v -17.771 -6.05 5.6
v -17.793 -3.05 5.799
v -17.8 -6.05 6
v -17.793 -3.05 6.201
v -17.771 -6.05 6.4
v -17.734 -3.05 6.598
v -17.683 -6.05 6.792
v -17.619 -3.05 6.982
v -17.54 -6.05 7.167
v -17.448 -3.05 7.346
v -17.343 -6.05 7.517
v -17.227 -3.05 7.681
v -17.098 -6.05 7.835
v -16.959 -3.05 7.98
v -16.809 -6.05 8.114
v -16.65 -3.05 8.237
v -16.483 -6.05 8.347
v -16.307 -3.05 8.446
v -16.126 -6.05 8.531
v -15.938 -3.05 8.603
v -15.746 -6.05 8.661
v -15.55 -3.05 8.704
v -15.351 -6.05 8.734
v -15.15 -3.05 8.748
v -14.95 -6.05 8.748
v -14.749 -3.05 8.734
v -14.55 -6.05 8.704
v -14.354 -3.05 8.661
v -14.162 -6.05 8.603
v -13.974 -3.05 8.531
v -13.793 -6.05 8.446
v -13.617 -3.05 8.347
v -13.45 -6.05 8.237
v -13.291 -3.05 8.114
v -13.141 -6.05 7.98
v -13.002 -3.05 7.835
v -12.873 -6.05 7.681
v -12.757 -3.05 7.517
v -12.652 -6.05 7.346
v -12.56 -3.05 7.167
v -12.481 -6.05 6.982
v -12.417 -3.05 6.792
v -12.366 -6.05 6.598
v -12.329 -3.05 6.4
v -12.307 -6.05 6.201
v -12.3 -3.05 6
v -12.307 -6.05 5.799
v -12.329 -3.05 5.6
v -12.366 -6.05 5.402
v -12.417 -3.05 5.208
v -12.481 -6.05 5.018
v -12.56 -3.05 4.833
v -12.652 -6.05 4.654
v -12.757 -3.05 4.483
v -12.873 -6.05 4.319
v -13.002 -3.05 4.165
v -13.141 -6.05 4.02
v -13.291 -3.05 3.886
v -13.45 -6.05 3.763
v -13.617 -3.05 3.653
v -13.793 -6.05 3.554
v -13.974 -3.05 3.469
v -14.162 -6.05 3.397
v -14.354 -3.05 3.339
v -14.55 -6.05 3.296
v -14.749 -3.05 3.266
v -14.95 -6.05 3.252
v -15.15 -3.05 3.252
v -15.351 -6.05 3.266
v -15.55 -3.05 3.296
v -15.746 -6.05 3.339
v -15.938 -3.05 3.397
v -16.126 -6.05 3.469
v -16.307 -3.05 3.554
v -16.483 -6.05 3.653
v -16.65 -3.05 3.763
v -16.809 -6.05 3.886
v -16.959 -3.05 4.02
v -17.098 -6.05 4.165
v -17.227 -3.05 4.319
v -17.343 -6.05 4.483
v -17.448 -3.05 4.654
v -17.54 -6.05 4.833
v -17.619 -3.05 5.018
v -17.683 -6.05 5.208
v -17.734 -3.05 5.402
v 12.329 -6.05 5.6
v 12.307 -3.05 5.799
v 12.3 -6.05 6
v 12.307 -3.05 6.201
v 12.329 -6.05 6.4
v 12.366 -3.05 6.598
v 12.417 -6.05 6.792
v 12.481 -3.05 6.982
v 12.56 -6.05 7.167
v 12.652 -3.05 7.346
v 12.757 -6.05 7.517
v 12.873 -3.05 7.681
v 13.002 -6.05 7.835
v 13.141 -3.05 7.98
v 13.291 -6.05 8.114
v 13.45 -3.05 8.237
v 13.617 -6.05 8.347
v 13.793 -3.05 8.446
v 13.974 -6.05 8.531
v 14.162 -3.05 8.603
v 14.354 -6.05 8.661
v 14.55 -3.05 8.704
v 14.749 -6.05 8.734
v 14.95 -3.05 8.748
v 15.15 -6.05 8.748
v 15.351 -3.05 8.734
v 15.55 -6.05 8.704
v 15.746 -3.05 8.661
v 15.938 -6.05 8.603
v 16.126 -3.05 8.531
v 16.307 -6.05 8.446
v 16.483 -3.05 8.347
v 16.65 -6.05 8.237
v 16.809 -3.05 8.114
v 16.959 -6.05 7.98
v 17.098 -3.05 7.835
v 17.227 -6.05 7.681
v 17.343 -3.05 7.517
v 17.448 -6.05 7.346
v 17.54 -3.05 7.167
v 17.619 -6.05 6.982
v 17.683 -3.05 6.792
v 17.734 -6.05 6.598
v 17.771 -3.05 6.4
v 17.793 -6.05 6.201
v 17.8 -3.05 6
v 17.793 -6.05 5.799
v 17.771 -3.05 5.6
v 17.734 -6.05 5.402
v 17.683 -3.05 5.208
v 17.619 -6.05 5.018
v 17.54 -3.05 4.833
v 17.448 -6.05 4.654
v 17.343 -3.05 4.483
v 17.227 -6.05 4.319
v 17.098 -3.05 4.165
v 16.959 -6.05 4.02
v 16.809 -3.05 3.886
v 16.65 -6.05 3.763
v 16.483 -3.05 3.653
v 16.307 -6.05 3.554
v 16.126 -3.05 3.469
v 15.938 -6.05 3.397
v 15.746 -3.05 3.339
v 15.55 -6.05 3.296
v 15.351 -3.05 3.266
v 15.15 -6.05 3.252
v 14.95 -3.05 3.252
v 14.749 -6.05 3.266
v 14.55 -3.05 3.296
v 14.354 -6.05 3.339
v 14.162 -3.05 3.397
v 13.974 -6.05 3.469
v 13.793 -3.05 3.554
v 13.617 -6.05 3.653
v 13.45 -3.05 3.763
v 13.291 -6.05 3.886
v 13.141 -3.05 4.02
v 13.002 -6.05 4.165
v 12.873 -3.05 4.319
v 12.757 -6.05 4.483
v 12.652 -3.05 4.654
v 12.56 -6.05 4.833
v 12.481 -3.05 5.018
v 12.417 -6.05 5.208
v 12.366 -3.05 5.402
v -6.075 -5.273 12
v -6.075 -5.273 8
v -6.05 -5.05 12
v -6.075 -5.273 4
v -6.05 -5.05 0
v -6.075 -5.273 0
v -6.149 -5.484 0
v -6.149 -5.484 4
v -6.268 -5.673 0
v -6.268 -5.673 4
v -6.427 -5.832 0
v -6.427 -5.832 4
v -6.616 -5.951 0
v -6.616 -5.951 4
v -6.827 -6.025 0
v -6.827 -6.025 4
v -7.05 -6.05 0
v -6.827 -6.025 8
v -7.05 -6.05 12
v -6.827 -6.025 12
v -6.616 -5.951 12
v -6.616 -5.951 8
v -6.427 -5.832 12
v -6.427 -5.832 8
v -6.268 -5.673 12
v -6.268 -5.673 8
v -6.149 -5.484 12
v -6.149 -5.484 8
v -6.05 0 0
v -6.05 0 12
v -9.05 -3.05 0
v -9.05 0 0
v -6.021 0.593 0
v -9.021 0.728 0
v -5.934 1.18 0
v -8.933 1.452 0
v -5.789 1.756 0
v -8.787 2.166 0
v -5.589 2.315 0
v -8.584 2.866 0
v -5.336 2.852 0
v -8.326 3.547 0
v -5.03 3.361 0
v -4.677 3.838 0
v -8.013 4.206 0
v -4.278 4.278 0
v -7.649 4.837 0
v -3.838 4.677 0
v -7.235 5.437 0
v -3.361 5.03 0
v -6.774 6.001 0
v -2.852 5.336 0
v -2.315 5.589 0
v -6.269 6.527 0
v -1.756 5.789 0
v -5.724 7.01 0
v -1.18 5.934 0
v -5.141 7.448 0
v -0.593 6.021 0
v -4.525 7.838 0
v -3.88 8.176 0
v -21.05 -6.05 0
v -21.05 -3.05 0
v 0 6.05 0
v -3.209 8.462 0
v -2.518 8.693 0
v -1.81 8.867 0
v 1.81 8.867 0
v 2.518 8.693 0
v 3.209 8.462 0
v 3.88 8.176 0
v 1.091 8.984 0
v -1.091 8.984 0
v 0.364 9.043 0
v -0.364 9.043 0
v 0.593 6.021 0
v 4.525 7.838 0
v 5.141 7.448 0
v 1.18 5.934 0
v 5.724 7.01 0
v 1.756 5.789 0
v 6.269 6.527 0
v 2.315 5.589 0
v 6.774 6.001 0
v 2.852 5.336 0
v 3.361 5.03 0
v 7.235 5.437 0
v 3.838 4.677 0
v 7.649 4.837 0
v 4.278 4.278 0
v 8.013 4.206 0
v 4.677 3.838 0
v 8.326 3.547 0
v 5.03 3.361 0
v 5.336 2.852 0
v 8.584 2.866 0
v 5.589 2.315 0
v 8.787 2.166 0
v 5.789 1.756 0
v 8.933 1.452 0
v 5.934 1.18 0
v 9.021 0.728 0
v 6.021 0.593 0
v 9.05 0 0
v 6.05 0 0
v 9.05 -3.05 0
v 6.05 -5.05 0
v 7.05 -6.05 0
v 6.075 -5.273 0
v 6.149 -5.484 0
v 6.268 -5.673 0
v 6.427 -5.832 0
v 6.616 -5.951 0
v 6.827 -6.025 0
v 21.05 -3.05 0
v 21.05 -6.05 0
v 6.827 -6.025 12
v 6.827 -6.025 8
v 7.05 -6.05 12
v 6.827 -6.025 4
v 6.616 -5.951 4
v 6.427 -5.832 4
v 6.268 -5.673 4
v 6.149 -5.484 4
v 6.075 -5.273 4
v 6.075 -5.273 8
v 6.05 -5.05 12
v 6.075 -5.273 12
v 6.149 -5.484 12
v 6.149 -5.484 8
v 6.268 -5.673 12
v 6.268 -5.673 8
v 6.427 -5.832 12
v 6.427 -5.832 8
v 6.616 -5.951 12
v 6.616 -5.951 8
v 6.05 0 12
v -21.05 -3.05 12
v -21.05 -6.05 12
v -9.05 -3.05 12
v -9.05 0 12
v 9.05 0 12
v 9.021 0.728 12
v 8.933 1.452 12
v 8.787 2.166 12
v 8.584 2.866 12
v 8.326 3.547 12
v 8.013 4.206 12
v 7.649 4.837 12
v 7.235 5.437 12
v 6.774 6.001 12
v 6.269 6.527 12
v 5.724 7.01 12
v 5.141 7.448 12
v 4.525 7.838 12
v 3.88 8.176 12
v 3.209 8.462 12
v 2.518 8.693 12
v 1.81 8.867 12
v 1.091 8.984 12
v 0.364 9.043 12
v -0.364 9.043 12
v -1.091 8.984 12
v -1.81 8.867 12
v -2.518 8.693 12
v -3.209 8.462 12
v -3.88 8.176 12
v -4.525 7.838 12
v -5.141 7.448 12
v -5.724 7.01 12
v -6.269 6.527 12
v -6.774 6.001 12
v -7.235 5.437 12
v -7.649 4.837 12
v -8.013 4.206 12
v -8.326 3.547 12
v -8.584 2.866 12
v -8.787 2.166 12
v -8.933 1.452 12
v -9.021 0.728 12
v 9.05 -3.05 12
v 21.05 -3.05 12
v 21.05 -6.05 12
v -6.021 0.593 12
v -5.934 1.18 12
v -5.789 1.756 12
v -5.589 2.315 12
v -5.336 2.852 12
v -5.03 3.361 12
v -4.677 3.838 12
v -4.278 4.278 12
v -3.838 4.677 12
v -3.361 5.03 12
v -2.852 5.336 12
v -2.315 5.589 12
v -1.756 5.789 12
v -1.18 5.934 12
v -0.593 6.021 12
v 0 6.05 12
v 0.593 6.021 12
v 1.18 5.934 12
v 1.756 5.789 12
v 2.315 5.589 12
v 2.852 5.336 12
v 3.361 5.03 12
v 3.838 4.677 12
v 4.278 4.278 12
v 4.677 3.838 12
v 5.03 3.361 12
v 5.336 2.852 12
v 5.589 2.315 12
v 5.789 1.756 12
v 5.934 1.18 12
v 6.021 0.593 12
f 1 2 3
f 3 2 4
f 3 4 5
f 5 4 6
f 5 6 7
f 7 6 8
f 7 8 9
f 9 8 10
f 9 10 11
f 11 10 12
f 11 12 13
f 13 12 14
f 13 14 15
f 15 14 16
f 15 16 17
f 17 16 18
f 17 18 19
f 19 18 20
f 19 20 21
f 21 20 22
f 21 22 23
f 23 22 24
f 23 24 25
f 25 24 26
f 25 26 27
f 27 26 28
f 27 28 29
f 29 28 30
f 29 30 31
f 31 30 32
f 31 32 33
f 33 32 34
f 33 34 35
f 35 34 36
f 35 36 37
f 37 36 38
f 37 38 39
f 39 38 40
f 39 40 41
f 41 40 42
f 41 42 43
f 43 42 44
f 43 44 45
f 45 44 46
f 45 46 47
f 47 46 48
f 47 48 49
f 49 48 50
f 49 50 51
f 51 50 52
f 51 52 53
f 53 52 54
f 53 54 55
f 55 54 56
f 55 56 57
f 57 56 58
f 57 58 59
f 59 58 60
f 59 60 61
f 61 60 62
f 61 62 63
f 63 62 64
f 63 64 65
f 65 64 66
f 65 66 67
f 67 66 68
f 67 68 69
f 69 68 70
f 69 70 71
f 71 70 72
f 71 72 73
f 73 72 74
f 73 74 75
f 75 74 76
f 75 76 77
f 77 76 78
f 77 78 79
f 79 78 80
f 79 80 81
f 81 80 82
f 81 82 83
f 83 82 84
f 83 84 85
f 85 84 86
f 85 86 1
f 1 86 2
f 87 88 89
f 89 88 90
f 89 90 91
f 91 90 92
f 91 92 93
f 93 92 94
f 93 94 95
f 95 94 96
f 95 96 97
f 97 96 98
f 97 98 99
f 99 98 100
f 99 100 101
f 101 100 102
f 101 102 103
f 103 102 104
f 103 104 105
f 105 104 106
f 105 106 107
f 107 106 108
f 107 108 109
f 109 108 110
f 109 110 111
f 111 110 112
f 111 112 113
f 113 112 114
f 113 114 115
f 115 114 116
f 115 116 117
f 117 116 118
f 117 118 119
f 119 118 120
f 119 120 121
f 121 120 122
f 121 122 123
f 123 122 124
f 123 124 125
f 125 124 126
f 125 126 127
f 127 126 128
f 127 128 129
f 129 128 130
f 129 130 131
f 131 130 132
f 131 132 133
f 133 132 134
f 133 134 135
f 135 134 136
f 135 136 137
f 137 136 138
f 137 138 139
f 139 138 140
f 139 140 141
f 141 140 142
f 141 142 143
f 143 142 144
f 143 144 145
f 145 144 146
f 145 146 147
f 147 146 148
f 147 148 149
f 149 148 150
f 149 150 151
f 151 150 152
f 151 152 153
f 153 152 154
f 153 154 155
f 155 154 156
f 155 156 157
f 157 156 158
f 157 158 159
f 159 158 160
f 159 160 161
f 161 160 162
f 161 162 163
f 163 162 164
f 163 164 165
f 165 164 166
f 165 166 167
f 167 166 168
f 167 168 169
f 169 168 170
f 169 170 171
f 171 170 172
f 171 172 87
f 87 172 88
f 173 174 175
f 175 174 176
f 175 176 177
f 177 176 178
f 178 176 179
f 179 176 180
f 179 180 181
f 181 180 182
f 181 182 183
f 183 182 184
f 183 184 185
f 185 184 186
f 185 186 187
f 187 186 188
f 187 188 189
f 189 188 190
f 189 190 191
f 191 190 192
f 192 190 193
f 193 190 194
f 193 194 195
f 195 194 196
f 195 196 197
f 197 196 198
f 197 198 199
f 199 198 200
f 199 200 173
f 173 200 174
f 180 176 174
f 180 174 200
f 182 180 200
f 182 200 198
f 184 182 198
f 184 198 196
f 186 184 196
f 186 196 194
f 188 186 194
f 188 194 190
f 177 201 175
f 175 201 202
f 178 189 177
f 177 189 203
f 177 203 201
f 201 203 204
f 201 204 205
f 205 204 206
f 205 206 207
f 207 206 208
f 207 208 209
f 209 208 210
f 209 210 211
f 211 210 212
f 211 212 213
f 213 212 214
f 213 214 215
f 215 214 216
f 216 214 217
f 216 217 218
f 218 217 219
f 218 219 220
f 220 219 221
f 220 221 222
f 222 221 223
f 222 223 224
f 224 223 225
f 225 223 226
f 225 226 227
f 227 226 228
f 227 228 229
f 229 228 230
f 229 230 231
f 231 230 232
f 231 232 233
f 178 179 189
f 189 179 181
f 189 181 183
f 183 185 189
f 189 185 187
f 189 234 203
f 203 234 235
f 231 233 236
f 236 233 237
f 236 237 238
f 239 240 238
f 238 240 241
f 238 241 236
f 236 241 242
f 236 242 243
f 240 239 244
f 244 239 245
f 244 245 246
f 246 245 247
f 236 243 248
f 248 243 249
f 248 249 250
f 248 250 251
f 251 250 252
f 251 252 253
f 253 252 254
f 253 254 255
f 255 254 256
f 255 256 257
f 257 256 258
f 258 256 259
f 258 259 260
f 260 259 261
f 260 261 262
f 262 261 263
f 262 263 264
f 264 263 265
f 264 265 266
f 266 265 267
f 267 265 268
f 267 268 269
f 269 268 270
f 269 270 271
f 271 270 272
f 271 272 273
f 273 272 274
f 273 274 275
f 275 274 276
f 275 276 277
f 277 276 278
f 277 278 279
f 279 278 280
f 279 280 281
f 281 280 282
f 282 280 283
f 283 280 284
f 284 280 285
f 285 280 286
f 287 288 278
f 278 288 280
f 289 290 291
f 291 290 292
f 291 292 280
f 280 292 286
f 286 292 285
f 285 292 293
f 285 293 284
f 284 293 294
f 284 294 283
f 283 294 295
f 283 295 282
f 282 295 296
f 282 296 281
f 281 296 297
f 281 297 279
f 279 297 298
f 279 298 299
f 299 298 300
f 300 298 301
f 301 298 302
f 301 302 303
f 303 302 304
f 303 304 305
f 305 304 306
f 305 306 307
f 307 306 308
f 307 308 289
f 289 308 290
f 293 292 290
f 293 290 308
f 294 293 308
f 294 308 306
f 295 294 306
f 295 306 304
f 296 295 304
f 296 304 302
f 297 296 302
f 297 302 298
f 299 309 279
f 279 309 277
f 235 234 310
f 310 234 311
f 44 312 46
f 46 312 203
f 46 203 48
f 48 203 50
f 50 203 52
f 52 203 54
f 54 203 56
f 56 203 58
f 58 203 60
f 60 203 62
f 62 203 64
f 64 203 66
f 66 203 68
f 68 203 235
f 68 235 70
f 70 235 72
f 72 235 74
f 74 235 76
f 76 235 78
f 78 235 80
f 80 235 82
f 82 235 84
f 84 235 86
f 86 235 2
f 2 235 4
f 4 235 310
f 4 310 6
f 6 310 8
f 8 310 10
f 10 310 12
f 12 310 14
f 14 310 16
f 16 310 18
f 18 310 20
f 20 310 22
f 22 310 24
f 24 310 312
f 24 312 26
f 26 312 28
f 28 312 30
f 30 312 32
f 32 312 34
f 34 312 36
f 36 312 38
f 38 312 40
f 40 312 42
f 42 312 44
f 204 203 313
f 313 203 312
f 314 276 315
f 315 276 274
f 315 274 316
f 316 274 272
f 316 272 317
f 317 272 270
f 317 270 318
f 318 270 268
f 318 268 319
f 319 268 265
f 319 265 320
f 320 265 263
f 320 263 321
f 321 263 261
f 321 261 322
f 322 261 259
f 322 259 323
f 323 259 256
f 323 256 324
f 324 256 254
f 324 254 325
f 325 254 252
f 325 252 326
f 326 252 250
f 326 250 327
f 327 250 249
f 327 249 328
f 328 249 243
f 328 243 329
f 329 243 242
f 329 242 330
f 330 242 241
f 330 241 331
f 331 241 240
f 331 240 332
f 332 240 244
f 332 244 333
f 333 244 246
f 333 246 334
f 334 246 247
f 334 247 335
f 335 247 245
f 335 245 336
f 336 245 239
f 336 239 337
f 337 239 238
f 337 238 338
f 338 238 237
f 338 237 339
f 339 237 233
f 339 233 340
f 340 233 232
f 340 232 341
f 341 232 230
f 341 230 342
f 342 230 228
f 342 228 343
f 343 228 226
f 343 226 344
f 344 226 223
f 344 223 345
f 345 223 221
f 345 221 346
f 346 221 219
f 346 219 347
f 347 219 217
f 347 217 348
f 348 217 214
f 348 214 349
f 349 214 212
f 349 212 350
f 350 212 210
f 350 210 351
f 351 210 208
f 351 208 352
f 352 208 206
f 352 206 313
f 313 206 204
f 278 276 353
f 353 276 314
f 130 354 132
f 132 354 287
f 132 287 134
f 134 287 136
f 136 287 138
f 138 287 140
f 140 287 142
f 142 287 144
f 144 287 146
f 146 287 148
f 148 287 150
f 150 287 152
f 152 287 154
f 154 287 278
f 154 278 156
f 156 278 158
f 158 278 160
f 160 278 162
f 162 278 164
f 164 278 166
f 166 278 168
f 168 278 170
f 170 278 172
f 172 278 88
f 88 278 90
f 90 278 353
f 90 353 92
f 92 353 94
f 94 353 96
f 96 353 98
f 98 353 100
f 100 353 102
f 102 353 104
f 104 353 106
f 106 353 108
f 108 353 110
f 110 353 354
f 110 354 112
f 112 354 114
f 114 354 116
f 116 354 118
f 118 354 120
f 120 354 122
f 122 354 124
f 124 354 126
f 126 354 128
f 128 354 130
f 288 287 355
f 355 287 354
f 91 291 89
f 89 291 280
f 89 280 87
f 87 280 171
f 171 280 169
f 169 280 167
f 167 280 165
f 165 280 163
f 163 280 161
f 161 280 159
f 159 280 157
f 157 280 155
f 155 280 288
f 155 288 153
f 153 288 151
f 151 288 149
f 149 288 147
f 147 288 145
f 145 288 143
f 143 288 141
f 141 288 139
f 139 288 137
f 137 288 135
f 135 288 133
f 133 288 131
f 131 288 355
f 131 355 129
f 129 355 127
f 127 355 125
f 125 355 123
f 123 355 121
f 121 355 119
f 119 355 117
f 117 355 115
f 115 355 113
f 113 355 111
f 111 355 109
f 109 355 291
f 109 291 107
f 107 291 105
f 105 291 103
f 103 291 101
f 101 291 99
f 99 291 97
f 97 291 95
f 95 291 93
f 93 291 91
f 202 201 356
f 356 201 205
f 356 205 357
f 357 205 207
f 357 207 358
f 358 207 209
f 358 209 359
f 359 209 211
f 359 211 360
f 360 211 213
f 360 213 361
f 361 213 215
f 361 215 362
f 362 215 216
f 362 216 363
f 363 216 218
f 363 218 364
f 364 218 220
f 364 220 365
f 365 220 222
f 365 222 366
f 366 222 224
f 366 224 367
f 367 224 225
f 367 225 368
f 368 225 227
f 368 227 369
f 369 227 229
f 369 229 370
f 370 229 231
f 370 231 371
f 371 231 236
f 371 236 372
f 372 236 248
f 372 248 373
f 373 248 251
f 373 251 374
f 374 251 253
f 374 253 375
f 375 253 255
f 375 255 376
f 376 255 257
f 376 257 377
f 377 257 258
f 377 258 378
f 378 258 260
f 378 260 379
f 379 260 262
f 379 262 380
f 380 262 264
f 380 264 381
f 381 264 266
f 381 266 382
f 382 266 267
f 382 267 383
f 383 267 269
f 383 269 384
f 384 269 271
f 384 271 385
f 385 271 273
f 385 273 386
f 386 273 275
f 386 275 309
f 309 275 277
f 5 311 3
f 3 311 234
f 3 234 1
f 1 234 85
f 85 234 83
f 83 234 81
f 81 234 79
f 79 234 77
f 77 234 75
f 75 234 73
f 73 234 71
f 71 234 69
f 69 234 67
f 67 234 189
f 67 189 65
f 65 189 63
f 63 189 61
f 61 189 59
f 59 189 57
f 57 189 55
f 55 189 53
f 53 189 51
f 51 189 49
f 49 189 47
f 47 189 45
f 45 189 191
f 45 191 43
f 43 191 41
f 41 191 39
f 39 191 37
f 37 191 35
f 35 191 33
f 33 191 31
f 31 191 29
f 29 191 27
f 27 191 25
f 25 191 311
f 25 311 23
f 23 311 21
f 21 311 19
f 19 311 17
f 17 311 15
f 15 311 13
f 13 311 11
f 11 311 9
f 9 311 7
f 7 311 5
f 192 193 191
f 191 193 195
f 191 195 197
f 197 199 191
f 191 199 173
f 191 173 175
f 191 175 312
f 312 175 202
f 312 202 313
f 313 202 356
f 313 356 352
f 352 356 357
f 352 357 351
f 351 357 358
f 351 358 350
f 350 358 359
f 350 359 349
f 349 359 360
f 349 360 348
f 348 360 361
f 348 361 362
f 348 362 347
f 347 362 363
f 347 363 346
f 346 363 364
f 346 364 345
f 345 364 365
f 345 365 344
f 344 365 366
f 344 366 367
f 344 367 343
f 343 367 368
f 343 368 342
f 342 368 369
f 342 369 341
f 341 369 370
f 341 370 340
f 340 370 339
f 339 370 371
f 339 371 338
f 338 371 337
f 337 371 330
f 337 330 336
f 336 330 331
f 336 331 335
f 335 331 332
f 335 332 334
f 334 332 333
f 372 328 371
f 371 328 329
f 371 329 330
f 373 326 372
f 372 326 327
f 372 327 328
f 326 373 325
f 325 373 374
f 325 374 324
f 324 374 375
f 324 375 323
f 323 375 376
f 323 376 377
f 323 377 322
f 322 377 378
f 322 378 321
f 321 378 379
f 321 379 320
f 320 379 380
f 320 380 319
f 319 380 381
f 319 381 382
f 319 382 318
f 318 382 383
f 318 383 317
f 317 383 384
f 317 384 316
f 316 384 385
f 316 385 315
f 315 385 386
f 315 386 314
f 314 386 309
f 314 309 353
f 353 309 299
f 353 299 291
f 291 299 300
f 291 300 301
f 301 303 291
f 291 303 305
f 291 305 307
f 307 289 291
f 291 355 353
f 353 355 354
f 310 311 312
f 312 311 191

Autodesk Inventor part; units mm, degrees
ref_plane "YZ Plane" through (0, 0, 0) normal (1, 0, 0) x (0, 1, 0)
ref_plane "XZ Plane" through (0, 0, 0) normal (0, 1, 0) x (-1, 0, 0)
ref_plane "XY Plane" through (0, 0, 0) normal (0, 0, 1) x (1, 0, 0)
sketch "Sketch1" plane through (0, 0, 0) normal (0, 0, 1) x (1, 0, 0)
  circle A0 centre (0, 0) radius 6.05
  circle A1 centre (0, 0) radius 9.05
  line L0 (-21.05, -6.05) -> (21.05, -6.05)
  line L1 (-9.05, 0) -> (-9.05, -6.05)
  line L2 (-6.05, 0) -> (-6.05, -6.05)
  line L3 (6.05, 0) -> (6.05, -6.05)
  line L4 (9.05, 0) -> (9.05, -6.05)
  line L5 (21.05, -6.05) -> (21.05, -3.05)
  line L6 (21.05, -3.05) -> (9.05, -3.05)
  line L7 (-21.05, -6.05) -> (-21.05, -3.05)
  line L8 (-21.05, -3.05) -> (-9.05, -3.05)
  dimension "d0" = 12.1
  dimension "d1" = 3
  dimension "d2" = 12
  dimension "d3" = 3
  dimension "d4" = 3
  dimension "d5" = 12
extrude "Extrusion1" add sketch "Sketch1" along normal blind 12 contours A0 L2 L0 A1 L3 | A1 L4 L0 | L0 L1 A1 | L4 L6 L5 L0 | L0 L7 L8 L1
fillet "Fillet1" radius 1 2 edges at (6.05, -6.05, 6) (-6.05, -6.05, 6)
sketch "Sketch2" plane through (9.05, -3.05, 0) normal (0, 1, 0) x (1, 0, 0)
  line L0 (12, 0) -> (12, -12) projected
  line L1 (12, -6) -> (0, -6)
  line L2 (0, 0) -> (0, -12) projected
  line L3 (-18.1, -12) -> (0, -12) projected
  line L4 (-9.05, -12) -> (-9.05, -16.2316)
  circle A0 centre (6, -6) radius 2.75
  circle A1 centre (-24.1, -6) radius 2.75
  point P0 (-9.05, 0)
  dimension "d9" = 5.5
extrude "Extrusion2" cut sketch "Sketch2" against normal blind 12
equation "\"d4\" = d3"
equation "\"d5\" = d2"
properties part number "Pipe Clamp_3DPrint"
